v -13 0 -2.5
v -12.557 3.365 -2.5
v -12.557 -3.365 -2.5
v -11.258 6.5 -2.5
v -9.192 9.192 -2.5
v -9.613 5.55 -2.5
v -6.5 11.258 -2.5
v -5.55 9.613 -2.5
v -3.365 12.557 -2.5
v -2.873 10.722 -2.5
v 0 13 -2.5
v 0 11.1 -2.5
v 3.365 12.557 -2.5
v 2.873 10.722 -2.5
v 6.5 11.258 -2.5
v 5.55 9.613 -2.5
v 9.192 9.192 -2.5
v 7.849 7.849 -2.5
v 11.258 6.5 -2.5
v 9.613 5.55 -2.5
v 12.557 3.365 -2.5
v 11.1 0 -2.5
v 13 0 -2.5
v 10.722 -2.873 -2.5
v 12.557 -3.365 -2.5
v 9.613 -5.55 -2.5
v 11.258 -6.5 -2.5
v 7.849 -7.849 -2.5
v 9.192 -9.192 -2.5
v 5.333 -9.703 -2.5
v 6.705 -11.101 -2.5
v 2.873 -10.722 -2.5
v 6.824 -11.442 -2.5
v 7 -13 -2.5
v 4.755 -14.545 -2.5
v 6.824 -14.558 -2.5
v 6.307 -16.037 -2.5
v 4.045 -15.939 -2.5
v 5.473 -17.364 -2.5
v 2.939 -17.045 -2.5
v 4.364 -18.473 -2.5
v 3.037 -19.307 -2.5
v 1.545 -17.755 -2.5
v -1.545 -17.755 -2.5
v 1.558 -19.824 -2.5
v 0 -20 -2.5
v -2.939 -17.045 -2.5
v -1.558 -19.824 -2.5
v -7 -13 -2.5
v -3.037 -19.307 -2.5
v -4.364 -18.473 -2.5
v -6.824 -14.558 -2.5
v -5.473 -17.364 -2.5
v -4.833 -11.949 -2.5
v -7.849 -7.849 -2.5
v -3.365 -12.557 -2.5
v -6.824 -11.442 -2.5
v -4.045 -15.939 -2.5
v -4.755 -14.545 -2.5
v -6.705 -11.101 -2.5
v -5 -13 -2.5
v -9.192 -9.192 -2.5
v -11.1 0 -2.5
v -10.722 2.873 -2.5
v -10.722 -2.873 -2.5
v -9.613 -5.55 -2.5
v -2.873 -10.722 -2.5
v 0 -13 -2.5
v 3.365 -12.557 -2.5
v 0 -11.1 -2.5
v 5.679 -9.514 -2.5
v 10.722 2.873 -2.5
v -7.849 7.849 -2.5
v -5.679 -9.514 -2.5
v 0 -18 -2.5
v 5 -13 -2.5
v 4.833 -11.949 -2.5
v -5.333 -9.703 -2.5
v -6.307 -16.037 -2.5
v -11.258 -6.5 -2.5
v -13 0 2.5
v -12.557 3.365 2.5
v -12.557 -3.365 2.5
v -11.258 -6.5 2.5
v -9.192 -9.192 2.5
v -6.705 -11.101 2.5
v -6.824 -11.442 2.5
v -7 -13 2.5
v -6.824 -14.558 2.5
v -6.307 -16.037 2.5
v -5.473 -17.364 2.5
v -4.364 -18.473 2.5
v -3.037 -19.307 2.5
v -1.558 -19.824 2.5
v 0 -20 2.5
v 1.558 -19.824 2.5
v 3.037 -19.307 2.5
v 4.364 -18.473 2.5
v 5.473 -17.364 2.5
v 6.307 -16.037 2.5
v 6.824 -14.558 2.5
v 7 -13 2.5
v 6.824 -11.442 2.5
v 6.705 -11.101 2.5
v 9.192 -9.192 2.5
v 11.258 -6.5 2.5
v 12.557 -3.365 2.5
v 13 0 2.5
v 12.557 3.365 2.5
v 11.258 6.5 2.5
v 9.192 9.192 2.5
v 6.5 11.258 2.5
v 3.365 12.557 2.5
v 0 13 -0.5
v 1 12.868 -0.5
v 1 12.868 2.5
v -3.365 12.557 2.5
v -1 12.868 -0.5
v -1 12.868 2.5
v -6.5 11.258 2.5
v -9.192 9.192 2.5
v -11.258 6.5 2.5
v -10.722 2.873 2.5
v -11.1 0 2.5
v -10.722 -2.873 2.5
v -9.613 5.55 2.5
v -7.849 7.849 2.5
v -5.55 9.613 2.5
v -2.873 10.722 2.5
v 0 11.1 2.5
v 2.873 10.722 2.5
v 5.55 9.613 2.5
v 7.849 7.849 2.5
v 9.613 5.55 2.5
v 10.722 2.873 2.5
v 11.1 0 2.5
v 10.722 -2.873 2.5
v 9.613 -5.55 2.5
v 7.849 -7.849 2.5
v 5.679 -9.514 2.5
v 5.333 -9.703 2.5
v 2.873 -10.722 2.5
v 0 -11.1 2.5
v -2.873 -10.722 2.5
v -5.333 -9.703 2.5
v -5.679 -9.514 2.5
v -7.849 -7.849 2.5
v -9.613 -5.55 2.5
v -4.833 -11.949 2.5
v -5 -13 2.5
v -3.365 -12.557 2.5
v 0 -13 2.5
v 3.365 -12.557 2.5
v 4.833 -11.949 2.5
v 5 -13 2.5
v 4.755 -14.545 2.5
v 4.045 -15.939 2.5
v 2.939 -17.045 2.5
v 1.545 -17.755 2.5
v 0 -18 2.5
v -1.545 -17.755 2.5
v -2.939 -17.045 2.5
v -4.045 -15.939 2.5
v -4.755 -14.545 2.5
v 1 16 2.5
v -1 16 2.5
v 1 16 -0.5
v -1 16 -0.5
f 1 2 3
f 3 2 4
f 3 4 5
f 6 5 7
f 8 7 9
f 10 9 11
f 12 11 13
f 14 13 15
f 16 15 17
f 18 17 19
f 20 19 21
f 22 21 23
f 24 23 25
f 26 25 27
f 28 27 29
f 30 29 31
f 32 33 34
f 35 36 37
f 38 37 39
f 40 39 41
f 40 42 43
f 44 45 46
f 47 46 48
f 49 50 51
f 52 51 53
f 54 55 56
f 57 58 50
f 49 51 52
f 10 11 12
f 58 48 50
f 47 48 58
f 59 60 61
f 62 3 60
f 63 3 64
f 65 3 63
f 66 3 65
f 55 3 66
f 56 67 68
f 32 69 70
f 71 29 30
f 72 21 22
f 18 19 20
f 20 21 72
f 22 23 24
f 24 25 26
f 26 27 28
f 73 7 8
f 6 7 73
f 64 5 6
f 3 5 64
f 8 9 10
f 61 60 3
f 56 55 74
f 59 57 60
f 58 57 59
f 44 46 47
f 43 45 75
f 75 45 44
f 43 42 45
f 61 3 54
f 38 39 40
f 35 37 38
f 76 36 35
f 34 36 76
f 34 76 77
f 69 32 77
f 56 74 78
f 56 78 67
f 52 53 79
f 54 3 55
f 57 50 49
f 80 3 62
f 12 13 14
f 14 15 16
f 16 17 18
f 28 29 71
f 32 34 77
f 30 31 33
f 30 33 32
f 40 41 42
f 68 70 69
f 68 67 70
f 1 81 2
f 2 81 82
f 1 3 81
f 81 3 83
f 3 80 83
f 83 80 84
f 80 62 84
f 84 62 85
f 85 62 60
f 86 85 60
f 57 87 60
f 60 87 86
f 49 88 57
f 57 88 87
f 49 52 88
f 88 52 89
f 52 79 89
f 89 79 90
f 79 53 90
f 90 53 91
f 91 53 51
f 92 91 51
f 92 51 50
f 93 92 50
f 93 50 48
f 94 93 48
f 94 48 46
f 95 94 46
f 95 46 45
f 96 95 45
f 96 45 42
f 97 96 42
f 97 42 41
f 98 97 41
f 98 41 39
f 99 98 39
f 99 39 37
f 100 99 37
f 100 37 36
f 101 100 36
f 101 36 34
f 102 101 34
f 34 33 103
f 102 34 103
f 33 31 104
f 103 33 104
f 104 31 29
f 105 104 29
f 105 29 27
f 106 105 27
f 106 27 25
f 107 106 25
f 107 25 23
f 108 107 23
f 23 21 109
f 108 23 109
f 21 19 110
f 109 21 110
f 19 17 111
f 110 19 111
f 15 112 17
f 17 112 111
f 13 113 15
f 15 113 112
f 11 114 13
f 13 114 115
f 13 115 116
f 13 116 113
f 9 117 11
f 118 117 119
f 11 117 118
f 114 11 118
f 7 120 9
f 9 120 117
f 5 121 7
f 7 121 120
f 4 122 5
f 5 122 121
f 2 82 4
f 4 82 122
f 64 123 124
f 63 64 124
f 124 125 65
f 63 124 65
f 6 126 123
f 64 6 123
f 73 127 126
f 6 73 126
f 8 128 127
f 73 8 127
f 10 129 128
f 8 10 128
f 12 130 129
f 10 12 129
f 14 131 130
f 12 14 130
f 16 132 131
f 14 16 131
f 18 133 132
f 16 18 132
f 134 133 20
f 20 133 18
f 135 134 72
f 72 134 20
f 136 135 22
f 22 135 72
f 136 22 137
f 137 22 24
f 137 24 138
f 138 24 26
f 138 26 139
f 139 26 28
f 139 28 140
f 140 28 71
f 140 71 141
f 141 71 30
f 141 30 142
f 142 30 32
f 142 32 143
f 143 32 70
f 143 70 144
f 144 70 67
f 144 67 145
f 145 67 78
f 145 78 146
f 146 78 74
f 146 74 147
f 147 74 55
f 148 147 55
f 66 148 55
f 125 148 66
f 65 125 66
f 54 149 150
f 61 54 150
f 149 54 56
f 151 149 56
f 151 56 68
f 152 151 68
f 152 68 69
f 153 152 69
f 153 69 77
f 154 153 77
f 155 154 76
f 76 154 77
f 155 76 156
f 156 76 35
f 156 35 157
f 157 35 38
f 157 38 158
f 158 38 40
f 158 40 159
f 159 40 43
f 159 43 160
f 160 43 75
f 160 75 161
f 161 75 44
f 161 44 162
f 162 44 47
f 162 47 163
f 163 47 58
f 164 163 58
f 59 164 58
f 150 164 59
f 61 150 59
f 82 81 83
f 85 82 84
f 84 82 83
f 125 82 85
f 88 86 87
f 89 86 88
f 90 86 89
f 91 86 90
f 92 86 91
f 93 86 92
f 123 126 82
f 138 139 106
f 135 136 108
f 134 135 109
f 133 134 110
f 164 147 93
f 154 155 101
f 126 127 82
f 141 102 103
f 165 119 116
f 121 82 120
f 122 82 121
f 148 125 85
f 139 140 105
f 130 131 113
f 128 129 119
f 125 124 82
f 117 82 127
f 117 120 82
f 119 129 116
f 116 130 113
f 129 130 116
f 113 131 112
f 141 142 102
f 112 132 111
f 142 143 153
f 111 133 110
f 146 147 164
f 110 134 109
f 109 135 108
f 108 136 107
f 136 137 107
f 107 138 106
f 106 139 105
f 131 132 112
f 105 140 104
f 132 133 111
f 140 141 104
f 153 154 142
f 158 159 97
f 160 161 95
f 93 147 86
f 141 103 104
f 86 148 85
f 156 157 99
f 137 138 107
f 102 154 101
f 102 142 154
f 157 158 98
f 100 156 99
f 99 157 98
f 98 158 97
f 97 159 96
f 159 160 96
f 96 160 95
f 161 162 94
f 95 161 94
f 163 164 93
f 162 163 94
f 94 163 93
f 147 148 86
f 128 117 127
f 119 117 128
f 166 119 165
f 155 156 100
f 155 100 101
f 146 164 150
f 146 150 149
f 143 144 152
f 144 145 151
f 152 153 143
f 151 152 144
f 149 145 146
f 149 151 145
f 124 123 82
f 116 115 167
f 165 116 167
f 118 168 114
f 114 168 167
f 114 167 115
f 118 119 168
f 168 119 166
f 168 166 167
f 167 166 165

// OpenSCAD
union() {
  difference() {
    cylinder(r=13,h=5, center=true, $fn=24);
    cylinder(r=11.1, h=5.5, center=true, $fn=24);
  }
  translate([-1,12,-.5])
  cube([2,4,3]);
  difference() {
    translate([0, -13, 0])
    cylinder(r=7,h=5, center=true, $fn=28);
    translate([0, -13, 0])
    cylinder(r=5, h=5.5, center=true, $fn=20);
    cylinder(r=11.1, h=5.5, center=true, $fn=44);
  }
}
